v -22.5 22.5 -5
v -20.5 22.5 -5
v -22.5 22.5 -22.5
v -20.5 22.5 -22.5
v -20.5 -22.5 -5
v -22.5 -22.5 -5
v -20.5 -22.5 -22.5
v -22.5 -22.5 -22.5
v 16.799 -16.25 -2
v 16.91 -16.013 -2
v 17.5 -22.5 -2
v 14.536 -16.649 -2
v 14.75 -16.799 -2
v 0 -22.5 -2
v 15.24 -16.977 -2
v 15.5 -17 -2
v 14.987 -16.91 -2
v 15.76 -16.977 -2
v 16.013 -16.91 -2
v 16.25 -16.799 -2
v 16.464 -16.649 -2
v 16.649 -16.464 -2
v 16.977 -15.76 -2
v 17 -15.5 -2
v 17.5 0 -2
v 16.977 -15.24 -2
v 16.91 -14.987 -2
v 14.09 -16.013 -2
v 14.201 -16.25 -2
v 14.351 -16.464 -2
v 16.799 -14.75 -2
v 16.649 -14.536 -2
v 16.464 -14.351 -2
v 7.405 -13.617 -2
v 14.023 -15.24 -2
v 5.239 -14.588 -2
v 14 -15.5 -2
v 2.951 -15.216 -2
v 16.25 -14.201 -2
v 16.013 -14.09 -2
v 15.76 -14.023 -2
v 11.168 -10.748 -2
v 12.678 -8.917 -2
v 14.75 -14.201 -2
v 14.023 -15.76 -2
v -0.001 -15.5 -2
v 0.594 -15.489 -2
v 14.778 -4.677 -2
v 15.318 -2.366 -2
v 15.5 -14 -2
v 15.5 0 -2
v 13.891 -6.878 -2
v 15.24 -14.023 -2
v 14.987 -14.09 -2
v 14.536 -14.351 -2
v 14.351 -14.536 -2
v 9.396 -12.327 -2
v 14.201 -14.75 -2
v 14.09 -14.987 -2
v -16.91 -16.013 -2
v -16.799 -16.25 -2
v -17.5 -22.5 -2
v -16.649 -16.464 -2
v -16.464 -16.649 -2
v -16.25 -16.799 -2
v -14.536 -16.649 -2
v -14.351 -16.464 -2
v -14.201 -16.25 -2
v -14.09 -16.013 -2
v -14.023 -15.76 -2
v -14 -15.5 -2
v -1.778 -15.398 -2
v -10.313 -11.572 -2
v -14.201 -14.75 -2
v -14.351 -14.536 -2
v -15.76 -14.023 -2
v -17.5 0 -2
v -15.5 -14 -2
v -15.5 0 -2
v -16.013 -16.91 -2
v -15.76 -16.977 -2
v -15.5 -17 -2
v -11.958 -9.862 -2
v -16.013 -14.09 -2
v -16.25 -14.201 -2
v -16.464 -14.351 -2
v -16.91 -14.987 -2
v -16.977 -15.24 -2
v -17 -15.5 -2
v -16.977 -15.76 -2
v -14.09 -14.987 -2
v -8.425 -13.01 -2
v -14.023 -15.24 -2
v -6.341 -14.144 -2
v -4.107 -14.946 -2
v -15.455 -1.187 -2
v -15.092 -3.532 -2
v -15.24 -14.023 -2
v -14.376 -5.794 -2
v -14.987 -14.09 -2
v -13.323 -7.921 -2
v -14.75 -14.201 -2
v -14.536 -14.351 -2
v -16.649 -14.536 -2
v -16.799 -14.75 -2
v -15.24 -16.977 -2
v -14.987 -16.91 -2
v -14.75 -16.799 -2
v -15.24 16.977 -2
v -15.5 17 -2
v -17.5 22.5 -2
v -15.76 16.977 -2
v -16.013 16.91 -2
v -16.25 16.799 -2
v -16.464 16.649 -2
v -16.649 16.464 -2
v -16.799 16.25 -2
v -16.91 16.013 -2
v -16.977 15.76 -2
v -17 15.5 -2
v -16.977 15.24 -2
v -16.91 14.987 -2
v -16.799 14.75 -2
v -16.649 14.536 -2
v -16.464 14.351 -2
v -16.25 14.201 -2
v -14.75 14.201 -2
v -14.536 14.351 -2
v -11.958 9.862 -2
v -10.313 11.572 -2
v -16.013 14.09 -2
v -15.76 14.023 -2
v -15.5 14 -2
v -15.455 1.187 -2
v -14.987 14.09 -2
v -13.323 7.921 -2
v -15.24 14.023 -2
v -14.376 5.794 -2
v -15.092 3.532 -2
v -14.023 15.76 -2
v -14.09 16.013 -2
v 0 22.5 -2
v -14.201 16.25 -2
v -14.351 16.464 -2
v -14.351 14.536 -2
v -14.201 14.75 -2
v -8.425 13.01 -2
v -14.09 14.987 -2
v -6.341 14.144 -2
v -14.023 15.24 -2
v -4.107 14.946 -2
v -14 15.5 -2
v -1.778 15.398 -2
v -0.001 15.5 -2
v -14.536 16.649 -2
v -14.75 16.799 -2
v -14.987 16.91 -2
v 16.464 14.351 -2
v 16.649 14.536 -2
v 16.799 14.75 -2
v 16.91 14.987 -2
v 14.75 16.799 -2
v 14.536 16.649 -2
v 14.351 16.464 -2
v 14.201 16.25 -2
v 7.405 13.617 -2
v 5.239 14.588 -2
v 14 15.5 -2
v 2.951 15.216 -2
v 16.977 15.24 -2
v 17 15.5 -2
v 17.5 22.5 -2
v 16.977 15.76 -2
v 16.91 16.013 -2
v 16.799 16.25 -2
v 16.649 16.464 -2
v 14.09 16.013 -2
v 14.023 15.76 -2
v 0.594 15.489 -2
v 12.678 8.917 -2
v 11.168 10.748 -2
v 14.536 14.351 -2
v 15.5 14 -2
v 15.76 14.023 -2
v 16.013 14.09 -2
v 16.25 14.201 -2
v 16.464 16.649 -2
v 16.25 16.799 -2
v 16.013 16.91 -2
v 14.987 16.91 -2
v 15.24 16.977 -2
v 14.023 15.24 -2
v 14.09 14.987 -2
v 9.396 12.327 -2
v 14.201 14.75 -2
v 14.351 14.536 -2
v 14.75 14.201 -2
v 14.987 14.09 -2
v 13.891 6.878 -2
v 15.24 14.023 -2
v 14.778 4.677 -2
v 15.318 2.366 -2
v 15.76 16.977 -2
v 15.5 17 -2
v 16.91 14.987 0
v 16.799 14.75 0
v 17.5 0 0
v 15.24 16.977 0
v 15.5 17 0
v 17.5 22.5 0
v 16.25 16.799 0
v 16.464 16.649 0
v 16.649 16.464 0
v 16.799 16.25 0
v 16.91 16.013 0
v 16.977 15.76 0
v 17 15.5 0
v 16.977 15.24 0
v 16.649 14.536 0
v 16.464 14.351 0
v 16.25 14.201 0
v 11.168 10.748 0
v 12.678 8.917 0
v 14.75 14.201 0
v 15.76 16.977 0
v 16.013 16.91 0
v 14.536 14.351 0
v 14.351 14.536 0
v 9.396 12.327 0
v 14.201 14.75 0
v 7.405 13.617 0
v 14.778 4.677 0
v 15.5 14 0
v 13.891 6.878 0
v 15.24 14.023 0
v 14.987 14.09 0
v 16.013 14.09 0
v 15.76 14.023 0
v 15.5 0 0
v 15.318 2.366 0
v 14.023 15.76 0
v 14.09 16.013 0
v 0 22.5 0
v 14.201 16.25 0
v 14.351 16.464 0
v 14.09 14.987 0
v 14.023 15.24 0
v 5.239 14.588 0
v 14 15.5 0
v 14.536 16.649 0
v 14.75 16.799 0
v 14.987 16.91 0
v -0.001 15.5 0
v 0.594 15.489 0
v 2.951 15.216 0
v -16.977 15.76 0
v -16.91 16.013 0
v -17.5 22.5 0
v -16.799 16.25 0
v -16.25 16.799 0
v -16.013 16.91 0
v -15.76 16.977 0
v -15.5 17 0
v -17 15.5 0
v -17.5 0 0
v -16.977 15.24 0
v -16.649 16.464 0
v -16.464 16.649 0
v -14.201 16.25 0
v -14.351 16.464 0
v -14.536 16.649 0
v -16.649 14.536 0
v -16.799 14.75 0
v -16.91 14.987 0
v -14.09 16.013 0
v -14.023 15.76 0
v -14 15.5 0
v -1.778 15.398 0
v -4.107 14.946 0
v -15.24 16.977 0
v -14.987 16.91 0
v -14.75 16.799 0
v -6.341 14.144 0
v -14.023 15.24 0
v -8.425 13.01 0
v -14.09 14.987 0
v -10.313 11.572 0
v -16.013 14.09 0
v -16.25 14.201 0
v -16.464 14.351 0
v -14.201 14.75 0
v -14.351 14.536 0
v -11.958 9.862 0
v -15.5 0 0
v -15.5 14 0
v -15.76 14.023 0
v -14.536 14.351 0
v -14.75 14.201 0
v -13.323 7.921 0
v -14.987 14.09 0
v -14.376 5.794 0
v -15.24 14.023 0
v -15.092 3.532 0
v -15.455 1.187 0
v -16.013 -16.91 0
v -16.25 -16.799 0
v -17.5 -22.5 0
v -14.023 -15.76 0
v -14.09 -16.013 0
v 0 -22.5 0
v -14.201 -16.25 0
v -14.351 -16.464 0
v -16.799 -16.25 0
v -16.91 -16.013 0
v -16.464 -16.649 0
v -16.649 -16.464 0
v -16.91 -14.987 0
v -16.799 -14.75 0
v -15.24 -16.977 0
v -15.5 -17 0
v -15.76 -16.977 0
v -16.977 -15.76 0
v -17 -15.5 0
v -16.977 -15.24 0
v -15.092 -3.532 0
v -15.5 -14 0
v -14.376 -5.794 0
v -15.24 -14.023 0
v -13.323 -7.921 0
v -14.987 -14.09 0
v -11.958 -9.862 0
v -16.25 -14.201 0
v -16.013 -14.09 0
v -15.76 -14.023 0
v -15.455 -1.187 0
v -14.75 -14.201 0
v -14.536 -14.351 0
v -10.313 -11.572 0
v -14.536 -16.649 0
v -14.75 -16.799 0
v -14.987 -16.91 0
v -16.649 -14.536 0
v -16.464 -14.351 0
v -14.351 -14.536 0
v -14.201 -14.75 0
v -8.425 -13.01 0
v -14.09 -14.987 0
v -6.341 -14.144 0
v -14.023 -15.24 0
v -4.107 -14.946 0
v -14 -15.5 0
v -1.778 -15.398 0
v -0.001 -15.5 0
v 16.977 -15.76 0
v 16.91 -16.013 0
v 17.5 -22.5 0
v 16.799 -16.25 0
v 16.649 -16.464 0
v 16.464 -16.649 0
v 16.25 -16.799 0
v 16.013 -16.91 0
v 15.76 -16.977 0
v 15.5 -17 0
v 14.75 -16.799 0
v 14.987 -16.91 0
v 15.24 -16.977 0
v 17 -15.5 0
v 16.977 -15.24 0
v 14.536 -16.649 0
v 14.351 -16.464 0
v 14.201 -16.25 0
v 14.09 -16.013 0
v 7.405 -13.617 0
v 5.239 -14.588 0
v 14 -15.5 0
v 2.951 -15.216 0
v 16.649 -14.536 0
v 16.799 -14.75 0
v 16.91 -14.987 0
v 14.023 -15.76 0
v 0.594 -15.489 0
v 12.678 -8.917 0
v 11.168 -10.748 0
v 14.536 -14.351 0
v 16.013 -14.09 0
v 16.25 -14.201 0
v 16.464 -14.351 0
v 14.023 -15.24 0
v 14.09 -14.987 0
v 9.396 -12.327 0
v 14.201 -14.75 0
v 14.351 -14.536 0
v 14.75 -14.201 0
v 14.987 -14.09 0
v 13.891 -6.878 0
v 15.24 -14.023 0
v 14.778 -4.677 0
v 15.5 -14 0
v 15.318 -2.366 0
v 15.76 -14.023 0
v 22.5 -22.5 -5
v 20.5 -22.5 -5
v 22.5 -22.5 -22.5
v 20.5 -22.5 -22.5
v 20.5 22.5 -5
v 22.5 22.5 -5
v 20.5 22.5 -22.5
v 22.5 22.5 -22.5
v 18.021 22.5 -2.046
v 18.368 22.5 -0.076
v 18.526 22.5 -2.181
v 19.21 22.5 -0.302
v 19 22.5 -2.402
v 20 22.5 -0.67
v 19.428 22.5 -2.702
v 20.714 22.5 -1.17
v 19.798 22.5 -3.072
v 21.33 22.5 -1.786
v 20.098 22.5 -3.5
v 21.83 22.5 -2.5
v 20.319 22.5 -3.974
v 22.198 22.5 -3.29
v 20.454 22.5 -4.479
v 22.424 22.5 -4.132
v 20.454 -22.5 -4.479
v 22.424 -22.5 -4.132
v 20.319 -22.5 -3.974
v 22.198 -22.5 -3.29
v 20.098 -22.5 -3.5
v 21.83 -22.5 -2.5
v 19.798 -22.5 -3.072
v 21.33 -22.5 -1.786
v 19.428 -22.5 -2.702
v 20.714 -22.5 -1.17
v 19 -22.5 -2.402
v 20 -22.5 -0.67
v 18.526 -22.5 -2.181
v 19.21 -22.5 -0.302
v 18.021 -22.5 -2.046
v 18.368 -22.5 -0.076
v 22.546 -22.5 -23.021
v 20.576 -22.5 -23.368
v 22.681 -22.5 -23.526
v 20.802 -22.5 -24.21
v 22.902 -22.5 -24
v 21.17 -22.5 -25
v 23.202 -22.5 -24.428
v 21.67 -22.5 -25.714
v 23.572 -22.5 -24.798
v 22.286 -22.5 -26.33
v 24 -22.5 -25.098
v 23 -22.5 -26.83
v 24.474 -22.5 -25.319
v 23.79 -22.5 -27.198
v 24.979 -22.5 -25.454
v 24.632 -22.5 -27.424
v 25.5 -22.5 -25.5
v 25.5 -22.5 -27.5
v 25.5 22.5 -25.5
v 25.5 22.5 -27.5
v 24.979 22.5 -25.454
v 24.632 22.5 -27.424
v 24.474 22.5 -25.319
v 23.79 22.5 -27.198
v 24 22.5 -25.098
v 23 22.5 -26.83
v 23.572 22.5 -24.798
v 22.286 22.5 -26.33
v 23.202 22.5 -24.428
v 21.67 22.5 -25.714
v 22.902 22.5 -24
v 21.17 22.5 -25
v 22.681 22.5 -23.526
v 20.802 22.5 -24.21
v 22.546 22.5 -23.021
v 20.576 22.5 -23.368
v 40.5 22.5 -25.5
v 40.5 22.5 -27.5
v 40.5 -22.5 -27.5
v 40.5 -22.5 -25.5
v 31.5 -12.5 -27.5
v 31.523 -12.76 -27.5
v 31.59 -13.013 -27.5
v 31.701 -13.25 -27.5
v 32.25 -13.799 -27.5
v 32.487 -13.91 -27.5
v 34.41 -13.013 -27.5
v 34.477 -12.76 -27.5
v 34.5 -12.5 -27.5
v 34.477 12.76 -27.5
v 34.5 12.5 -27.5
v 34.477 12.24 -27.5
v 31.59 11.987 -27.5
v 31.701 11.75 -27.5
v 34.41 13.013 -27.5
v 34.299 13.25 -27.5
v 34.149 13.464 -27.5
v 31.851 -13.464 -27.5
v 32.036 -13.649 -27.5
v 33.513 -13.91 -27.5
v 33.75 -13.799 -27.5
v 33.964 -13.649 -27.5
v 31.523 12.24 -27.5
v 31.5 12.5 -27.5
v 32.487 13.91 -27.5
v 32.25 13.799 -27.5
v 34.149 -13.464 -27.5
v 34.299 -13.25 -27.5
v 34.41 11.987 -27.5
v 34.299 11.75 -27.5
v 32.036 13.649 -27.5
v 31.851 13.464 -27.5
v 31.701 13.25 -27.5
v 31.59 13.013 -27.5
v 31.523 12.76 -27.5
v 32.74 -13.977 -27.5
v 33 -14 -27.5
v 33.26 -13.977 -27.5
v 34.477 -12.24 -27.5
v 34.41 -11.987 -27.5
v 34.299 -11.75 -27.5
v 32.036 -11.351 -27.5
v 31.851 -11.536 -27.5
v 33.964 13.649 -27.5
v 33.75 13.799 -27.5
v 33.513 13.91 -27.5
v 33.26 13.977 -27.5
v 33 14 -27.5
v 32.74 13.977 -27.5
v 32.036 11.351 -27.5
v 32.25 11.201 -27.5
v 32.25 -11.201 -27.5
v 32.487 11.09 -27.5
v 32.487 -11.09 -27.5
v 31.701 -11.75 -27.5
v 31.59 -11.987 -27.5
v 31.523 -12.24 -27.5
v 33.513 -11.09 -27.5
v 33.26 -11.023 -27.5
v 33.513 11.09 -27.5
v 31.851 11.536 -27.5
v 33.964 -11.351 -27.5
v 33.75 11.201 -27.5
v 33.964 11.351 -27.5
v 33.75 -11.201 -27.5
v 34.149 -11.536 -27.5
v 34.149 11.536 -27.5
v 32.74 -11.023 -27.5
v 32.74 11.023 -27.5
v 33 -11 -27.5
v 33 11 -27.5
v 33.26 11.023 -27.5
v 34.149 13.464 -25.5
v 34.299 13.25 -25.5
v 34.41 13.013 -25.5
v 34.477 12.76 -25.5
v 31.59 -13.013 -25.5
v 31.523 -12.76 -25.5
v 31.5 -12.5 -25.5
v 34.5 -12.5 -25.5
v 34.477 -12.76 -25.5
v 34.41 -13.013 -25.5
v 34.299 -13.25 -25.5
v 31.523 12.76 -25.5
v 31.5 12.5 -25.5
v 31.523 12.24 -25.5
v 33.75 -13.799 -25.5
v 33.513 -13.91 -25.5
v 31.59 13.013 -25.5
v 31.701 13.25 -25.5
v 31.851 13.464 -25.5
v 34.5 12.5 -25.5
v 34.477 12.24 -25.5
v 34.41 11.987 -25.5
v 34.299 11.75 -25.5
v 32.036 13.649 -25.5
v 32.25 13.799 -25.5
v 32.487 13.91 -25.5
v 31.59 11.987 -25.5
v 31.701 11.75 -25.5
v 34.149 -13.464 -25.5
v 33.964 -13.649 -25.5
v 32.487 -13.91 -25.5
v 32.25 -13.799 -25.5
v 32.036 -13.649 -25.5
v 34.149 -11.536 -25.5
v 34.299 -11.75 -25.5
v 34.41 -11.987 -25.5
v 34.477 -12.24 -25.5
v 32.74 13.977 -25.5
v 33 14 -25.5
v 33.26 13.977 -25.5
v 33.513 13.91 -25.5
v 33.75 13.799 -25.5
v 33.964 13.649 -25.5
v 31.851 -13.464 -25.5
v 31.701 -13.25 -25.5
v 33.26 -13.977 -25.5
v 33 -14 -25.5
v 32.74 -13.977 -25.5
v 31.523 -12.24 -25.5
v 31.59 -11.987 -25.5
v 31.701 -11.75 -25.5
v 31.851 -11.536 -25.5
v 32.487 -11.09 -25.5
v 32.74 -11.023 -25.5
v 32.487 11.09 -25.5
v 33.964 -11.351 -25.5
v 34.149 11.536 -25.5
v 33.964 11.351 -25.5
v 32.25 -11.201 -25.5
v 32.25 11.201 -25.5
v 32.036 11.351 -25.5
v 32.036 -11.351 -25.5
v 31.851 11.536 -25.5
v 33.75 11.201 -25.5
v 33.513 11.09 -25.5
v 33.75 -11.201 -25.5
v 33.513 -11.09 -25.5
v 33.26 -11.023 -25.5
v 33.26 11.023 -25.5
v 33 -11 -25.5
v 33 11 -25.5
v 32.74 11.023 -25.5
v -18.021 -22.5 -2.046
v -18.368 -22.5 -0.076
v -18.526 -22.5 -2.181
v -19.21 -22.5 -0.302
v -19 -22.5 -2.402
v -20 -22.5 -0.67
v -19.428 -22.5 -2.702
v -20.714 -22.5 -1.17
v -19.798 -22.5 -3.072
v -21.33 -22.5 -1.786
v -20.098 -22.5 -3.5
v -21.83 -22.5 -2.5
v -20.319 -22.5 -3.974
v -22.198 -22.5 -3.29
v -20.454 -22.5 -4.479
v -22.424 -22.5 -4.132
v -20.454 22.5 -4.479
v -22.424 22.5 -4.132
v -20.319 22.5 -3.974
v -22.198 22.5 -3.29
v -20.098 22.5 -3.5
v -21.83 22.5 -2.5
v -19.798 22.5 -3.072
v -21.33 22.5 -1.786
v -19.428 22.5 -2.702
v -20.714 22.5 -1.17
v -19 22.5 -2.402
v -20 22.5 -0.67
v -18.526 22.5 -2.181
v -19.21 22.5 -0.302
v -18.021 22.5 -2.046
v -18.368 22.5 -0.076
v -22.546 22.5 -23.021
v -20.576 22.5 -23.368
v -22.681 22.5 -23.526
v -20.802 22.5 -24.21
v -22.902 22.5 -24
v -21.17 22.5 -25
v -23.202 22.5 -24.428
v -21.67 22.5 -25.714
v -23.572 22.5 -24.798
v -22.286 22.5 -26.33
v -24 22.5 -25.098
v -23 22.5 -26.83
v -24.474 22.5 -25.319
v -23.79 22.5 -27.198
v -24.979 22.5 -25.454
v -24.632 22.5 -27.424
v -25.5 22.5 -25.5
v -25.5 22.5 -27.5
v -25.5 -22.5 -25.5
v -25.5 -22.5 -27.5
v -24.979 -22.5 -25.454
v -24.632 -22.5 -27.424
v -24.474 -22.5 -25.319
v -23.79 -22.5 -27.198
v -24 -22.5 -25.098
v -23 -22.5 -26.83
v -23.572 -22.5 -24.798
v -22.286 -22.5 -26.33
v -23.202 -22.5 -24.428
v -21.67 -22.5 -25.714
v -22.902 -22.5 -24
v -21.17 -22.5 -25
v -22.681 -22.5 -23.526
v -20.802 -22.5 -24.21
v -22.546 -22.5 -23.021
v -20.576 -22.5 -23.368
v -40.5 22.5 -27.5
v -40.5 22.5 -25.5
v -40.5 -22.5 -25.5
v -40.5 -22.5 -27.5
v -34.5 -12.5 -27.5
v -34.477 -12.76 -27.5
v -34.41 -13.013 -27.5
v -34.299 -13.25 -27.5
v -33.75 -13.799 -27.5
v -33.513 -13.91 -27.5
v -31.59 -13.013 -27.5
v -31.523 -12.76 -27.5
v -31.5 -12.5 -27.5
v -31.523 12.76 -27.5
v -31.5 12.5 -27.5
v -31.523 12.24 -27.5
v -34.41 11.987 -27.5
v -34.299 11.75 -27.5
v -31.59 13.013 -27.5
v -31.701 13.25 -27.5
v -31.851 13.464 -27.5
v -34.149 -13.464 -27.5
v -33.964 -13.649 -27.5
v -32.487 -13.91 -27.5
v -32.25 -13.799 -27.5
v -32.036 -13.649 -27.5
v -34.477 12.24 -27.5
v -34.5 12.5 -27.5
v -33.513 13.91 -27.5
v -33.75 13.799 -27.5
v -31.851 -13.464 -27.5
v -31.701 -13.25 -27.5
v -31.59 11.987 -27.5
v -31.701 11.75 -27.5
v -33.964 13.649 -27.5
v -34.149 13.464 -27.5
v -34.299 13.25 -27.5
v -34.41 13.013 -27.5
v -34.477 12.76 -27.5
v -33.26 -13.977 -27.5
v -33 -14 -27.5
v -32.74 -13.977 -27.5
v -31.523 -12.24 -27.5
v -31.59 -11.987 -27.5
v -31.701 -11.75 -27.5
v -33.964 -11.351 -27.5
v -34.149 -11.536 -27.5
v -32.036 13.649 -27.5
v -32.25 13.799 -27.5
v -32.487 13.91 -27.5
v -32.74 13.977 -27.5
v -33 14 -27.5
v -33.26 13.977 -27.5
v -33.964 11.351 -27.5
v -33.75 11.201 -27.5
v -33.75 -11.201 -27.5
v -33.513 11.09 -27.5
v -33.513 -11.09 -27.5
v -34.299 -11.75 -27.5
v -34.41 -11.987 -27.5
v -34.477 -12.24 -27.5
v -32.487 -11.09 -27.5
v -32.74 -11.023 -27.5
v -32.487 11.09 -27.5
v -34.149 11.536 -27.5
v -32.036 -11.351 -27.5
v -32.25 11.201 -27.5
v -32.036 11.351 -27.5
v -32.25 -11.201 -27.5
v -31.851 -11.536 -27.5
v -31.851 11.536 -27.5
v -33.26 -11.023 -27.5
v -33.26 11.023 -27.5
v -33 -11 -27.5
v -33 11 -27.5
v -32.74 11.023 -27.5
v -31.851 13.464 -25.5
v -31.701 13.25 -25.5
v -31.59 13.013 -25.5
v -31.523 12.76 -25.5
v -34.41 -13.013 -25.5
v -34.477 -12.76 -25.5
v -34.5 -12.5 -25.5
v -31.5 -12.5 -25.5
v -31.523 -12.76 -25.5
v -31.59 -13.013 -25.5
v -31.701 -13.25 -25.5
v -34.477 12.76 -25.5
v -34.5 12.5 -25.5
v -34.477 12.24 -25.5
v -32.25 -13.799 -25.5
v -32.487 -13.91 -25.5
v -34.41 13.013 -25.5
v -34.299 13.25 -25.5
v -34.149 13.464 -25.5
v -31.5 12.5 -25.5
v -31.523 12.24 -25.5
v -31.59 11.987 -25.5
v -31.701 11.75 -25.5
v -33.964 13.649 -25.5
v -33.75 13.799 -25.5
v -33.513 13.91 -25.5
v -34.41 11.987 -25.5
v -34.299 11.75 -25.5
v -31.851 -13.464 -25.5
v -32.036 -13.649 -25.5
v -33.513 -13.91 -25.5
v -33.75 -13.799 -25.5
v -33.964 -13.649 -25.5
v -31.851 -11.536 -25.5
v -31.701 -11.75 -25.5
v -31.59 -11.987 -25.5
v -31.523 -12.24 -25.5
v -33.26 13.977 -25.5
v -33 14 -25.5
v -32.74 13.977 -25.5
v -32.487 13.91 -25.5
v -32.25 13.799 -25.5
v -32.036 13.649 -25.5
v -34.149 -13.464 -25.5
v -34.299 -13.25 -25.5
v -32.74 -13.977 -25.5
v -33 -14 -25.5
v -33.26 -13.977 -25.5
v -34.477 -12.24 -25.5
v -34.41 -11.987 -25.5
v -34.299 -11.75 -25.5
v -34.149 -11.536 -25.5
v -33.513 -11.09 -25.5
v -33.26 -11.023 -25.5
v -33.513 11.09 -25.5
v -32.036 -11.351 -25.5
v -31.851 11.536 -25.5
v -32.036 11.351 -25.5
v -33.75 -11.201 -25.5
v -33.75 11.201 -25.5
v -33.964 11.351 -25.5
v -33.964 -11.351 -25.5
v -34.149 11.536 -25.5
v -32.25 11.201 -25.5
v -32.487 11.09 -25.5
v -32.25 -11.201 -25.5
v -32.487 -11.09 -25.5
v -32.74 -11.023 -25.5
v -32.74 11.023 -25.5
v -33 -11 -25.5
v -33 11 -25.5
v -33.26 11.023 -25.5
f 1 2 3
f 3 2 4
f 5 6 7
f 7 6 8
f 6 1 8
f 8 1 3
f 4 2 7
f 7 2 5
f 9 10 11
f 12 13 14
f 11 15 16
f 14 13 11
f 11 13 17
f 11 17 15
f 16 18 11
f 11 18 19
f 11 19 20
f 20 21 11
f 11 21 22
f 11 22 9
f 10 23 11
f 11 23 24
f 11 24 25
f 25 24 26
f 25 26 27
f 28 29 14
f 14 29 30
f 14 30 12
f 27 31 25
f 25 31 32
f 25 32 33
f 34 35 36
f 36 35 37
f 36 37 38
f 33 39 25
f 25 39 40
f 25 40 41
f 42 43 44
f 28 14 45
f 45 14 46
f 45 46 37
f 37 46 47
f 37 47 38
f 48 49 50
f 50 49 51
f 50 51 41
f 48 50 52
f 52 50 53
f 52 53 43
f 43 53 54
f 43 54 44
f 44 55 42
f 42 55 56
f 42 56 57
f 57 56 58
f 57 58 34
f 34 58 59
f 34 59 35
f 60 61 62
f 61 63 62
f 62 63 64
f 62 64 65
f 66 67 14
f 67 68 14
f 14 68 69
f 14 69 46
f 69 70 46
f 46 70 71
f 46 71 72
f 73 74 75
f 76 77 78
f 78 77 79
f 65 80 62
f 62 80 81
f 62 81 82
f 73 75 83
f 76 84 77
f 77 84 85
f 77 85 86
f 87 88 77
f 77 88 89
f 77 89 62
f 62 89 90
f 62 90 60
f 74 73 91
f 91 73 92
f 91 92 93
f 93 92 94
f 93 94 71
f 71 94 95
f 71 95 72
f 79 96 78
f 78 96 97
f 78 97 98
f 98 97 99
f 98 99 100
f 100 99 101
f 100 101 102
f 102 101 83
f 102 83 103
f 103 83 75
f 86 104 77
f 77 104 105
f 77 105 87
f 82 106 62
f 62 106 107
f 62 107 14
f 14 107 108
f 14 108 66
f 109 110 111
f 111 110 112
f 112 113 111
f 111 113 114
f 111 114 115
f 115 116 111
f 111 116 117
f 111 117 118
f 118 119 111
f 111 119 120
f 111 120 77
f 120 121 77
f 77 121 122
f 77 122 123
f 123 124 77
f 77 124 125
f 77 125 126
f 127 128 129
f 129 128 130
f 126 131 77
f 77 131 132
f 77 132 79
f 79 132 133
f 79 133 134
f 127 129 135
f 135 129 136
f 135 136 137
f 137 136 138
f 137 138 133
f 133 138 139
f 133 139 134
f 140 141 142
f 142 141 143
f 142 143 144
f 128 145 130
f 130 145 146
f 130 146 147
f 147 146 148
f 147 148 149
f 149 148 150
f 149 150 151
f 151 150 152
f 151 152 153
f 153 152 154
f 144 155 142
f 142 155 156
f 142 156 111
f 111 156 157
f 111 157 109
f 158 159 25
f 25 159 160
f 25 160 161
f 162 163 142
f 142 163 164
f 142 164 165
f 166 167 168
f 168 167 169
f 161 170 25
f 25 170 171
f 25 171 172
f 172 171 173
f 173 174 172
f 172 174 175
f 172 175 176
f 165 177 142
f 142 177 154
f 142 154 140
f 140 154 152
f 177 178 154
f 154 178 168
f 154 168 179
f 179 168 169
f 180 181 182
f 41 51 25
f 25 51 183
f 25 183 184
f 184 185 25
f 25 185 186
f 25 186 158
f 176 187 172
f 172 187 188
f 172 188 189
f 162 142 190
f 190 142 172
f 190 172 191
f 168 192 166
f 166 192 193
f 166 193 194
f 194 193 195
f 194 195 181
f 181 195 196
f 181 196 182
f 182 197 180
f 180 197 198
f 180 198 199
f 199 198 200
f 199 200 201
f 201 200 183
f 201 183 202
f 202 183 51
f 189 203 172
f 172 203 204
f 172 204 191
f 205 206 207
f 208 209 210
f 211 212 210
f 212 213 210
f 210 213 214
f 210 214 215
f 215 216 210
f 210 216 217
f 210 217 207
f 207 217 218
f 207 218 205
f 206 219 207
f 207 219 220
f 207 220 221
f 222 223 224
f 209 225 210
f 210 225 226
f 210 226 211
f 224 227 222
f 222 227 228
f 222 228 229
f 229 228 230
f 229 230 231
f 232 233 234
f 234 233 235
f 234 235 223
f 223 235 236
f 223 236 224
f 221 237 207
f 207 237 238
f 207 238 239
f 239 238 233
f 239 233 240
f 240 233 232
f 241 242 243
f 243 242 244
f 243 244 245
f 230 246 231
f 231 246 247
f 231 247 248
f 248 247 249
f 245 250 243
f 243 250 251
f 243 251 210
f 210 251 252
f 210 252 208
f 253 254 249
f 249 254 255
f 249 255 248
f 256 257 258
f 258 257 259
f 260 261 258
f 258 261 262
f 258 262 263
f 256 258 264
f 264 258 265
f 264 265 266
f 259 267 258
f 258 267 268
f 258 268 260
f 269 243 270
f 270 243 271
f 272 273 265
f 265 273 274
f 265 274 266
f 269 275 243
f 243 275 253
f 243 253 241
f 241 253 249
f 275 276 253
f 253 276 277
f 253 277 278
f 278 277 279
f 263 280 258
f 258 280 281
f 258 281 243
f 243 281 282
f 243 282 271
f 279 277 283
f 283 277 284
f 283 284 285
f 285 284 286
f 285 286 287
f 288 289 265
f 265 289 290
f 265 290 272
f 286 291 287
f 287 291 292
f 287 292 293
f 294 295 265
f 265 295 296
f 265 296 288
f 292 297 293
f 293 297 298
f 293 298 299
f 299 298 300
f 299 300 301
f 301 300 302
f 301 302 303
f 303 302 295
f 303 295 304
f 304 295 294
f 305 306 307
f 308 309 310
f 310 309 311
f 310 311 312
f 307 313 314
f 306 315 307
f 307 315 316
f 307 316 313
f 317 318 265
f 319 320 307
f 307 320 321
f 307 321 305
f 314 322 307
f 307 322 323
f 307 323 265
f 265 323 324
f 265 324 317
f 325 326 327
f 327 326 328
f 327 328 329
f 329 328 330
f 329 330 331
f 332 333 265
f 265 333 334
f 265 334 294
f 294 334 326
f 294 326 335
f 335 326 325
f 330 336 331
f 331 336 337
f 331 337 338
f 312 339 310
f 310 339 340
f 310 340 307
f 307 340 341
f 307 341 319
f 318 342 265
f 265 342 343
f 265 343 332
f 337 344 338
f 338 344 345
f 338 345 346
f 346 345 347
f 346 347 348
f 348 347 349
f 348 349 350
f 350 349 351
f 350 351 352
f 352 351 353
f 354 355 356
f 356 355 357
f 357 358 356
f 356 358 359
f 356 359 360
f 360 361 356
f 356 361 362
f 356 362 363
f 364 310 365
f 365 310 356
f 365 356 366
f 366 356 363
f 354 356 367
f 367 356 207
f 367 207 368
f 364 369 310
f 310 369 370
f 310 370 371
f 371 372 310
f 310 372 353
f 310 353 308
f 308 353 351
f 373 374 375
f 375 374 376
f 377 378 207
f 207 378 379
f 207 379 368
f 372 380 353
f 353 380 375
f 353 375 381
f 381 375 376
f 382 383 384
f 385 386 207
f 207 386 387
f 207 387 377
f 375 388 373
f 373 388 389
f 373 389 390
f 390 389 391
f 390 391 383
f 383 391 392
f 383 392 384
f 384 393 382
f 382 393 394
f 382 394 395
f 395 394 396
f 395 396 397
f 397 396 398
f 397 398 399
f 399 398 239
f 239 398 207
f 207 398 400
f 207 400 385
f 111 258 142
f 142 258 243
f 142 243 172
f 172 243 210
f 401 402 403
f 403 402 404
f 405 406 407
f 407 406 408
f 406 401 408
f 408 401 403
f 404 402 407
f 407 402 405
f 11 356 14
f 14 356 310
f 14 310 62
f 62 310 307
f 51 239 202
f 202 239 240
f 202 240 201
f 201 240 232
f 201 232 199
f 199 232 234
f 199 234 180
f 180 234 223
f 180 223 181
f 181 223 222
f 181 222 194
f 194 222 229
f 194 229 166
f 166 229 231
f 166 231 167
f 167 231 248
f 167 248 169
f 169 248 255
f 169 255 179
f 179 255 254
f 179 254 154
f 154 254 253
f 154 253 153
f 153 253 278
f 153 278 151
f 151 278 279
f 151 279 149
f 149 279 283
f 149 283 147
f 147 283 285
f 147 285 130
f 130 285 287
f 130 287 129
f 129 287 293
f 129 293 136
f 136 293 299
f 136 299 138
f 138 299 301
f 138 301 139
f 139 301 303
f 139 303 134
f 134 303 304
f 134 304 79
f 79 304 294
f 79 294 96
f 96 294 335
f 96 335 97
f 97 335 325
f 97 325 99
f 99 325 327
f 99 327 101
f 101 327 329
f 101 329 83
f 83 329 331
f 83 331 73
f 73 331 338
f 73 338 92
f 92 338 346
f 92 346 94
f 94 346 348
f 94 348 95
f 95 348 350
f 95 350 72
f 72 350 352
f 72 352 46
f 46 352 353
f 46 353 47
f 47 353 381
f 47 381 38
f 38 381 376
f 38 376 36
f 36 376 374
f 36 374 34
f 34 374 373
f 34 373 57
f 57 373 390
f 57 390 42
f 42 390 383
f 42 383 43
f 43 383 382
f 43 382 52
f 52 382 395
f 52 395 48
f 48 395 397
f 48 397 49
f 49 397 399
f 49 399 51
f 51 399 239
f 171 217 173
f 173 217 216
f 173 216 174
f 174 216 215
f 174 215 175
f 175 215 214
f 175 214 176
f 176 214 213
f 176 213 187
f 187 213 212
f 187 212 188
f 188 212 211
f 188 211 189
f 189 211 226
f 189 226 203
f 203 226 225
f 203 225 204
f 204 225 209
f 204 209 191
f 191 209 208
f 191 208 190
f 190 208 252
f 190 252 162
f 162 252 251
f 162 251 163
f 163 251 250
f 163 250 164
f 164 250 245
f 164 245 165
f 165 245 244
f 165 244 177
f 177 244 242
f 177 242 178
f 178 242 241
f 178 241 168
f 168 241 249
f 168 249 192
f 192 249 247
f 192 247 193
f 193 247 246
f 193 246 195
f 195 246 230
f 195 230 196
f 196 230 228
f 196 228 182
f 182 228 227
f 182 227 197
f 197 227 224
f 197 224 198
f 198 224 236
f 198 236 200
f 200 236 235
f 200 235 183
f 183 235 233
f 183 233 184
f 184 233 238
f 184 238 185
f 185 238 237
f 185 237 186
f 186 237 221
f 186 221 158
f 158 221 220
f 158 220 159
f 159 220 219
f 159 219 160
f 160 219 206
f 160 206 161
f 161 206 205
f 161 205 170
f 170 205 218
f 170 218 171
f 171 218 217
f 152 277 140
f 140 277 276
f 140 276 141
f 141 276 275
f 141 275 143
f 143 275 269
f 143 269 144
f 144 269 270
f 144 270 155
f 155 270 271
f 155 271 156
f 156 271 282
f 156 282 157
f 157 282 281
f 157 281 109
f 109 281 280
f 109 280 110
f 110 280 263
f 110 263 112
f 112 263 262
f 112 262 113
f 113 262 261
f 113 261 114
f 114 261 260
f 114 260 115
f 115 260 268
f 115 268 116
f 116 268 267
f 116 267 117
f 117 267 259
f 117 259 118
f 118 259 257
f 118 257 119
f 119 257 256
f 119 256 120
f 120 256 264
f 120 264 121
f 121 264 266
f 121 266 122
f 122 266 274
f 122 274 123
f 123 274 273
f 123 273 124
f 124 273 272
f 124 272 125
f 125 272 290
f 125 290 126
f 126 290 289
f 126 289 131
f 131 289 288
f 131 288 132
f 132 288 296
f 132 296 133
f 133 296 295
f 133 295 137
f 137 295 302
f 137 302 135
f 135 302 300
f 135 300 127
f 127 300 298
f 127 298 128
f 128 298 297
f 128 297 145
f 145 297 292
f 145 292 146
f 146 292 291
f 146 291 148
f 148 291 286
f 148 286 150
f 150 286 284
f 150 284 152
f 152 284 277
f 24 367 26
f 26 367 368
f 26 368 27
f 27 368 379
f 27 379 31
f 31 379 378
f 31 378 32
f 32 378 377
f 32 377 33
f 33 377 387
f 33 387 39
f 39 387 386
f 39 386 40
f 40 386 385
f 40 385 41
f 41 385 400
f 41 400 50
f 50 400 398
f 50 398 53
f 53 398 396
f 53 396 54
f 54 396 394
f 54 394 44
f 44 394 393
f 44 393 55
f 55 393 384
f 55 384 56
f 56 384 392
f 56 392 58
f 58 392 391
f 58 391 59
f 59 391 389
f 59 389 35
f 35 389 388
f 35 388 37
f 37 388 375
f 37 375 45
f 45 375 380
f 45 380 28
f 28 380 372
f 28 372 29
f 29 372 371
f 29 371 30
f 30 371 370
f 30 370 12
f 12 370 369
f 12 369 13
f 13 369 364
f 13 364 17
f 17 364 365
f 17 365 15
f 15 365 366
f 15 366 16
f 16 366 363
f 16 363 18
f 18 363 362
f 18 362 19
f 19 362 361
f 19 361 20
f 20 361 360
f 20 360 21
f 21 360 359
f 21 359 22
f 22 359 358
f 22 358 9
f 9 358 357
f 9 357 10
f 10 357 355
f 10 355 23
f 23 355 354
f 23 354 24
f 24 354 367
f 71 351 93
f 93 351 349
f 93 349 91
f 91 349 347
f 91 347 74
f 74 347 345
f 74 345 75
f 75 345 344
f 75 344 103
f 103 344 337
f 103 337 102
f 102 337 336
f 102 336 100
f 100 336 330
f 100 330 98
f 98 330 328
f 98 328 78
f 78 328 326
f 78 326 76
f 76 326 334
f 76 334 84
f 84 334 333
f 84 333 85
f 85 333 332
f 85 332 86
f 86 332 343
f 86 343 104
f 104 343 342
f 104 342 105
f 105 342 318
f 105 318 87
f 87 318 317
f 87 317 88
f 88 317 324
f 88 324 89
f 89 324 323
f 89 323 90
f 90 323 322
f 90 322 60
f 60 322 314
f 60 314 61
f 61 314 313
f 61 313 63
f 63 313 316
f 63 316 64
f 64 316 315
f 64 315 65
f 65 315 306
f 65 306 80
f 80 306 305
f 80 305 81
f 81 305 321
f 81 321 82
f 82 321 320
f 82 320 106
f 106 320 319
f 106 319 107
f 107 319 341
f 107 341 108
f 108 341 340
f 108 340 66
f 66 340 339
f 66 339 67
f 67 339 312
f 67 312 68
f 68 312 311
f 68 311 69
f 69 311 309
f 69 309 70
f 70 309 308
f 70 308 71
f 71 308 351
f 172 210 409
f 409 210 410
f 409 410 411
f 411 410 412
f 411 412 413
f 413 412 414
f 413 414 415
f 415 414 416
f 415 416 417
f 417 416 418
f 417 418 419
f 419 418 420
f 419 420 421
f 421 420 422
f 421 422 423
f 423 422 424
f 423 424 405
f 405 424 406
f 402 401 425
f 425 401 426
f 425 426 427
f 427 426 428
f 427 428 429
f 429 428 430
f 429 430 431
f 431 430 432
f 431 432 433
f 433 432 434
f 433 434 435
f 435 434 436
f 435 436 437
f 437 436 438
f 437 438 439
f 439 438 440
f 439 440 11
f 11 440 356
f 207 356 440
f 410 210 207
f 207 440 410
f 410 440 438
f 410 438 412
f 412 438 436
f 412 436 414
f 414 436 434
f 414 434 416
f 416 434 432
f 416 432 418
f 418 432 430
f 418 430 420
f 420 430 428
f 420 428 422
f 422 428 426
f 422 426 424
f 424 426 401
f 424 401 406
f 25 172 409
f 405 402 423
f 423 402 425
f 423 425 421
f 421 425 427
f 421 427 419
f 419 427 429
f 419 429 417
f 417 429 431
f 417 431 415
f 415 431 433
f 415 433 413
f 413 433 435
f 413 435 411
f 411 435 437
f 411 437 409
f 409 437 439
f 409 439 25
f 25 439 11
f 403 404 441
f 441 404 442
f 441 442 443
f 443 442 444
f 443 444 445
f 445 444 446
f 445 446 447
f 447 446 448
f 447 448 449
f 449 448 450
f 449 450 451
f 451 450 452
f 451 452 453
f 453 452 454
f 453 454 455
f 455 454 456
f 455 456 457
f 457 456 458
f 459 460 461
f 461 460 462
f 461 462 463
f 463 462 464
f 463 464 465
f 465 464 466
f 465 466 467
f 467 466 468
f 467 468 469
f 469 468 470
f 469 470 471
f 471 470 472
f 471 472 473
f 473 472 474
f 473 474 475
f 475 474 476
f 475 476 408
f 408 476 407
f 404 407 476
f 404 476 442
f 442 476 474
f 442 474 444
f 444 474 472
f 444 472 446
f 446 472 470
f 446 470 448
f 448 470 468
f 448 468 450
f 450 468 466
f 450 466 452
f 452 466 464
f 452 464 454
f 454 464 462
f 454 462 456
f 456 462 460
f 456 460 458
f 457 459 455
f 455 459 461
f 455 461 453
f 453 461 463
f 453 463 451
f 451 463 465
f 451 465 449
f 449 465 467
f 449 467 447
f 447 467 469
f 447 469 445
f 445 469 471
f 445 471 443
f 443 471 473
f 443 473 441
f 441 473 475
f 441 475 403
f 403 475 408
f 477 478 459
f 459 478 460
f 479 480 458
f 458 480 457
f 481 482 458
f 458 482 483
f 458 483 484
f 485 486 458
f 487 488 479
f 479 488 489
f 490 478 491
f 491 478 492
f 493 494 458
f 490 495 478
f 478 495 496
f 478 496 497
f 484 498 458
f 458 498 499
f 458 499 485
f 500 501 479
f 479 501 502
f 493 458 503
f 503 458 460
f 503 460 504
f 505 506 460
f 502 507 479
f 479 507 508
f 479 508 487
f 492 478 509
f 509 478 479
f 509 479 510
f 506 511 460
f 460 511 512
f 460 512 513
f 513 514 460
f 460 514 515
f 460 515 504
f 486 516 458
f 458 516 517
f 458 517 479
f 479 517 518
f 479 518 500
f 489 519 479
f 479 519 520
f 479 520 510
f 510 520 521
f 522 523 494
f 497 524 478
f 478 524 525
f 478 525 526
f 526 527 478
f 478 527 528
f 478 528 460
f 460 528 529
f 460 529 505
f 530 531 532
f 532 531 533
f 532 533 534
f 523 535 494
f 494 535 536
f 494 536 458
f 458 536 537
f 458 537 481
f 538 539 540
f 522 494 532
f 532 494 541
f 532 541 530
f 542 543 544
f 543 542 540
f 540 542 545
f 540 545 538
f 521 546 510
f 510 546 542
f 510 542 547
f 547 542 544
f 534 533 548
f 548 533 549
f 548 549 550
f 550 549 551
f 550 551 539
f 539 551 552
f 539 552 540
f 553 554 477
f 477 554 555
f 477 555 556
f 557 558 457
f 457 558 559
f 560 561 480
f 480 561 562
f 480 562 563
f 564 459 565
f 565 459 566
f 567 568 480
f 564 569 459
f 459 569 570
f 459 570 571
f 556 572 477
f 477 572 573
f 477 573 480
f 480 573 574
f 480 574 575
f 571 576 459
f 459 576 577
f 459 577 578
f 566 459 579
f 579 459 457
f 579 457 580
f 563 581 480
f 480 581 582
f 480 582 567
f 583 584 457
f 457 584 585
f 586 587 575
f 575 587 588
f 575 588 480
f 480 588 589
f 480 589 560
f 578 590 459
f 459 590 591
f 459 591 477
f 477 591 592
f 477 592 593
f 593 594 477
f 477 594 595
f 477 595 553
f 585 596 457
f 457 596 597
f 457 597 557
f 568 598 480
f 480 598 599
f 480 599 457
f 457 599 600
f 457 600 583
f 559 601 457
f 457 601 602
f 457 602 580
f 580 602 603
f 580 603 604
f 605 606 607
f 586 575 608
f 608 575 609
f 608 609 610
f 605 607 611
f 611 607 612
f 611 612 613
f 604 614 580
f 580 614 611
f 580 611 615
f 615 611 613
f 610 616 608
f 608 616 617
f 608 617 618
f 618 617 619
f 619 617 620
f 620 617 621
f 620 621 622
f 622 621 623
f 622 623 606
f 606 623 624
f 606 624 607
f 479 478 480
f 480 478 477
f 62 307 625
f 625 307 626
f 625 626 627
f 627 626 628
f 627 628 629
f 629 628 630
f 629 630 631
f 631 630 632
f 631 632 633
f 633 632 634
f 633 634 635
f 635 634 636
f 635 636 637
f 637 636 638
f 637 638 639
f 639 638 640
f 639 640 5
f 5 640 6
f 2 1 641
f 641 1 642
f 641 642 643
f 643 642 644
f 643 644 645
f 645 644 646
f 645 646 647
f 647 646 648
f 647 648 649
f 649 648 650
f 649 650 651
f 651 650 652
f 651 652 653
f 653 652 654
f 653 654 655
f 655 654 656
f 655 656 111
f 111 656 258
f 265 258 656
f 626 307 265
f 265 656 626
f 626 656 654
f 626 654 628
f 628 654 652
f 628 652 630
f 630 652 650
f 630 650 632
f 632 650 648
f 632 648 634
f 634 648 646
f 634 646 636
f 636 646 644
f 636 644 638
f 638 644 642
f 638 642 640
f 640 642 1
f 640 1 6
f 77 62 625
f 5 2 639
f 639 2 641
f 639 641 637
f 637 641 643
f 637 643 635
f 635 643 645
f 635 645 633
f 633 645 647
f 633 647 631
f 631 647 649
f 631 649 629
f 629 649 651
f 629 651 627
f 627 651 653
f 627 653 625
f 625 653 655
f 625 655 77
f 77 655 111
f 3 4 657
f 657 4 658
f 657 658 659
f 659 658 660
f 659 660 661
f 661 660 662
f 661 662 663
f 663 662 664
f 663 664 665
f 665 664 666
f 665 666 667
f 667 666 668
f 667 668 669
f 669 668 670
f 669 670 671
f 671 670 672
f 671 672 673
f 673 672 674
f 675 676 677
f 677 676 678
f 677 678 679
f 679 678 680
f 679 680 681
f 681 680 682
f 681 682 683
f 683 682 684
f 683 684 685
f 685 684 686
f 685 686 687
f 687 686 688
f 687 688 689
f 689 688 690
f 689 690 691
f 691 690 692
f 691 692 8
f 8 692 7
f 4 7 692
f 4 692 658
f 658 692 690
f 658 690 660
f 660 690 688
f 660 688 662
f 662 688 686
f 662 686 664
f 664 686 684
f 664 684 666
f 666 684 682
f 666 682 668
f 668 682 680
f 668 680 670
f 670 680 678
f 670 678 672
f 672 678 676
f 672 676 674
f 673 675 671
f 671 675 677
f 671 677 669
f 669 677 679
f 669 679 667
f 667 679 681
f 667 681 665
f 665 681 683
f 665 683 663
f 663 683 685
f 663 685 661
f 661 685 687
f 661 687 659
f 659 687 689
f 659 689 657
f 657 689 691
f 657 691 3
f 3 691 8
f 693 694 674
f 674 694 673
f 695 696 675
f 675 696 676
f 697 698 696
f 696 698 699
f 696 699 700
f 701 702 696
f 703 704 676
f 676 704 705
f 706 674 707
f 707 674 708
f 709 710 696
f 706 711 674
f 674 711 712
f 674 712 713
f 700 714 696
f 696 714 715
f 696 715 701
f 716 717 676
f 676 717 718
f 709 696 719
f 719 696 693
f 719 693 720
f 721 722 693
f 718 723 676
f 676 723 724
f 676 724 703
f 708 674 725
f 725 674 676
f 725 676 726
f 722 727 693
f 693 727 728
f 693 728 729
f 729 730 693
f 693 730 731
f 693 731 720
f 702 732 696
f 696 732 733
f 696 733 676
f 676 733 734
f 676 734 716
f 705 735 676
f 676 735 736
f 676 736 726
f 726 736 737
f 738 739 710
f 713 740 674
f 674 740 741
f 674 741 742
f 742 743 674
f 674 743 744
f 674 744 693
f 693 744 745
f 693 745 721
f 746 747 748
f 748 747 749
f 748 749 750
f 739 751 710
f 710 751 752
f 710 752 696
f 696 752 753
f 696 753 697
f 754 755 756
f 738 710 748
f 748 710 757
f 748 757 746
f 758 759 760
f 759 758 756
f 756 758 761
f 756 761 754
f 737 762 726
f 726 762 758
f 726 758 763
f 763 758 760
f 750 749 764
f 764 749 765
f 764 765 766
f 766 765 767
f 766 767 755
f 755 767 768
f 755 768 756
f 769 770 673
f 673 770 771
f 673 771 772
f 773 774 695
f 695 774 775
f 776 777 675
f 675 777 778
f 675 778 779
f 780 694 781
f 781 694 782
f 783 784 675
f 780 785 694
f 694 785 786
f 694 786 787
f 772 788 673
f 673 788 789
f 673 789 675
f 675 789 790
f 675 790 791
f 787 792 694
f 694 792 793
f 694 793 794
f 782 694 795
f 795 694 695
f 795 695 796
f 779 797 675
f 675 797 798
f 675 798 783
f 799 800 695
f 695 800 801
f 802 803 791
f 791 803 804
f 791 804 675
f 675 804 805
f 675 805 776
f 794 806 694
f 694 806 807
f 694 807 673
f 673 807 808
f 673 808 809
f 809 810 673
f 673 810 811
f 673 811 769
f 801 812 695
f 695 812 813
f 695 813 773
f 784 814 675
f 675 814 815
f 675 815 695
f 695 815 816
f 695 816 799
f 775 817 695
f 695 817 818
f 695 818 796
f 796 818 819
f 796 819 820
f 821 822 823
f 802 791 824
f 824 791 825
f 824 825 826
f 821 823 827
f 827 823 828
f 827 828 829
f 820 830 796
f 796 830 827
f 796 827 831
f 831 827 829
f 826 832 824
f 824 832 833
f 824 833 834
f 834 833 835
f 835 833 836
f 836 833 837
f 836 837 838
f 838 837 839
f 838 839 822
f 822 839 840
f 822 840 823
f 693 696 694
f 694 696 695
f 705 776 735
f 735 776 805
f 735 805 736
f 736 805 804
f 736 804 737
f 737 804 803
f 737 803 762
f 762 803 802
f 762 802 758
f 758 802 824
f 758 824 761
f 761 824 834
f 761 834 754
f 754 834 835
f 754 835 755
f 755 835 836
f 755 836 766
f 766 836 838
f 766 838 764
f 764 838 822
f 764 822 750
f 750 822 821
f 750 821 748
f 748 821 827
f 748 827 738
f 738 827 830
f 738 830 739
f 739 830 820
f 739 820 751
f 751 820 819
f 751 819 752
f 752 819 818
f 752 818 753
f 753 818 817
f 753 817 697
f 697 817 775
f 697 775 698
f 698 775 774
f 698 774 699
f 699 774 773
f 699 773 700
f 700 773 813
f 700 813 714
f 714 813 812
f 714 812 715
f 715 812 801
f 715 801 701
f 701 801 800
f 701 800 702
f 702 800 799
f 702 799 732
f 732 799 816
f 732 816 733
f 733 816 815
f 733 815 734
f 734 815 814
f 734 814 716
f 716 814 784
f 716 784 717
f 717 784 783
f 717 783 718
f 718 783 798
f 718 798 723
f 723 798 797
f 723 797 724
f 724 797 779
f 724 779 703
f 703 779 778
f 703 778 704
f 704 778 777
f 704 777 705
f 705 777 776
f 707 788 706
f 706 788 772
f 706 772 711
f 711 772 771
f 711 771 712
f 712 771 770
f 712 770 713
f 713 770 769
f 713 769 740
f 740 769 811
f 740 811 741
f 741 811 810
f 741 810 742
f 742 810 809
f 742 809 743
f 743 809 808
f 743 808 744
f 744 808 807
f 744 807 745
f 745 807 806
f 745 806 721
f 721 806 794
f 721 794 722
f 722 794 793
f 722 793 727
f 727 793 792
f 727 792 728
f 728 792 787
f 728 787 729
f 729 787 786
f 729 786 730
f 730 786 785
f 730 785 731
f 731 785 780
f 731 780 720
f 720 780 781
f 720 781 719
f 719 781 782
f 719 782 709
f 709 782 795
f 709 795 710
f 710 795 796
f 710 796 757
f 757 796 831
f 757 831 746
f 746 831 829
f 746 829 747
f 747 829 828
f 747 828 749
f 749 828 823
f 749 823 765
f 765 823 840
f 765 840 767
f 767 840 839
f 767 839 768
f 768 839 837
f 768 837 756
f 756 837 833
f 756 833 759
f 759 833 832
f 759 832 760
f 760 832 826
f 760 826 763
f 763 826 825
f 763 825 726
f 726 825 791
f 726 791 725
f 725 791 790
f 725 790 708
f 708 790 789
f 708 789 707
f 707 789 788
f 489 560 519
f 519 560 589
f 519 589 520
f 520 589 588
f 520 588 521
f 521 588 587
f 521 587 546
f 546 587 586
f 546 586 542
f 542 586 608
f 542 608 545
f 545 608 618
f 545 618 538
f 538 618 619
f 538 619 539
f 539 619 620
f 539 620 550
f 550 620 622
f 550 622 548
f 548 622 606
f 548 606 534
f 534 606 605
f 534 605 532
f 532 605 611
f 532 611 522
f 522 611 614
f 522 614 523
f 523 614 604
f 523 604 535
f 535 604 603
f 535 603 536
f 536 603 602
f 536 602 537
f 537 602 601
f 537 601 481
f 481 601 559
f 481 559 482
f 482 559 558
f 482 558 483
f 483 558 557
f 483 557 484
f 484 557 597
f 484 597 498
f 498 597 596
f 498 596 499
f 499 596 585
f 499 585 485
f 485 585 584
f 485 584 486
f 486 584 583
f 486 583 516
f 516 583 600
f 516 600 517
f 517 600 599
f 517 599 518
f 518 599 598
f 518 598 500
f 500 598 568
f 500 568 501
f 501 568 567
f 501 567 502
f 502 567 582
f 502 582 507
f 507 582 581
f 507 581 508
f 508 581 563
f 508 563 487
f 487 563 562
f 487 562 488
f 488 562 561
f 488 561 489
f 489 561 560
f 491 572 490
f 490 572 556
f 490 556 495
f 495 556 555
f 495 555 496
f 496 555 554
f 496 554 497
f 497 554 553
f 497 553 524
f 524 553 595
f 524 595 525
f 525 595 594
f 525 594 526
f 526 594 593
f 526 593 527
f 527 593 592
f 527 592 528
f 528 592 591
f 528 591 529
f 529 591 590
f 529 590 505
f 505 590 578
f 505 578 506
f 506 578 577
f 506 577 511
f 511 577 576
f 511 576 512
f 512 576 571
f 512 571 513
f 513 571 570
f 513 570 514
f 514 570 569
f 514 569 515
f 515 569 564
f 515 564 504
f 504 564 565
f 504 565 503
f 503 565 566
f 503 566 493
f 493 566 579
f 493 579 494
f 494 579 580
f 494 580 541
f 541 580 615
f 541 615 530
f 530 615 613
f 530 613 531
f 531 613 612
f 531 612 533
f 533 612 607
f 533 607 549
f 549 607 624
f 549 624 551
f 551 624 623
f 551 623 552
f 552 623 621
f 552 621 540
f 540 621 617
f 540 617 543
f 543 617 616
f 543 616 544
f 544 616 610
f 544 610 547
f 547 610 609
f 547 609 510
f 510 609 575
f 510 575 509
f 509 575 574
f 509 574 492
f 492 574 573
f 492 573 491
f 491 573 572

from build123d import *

# Parameters (mm, degrees)
SKETCH1_W                    = 45
SKETCH1_H                    = 45
SKETCH1_R                    = 15.5
SKETCH1_R_2                  = 1.5
BASE_FLANGE1_DEPTH           = 2
EDGE_FLANGE1_STRIP_W         = 14
EDGE_FLANGE1_STRIP_H         = 2
EDGE_FLANGE1_STRIP_CUT_DEPTH = 45
EDGE_FLANGE1_DEPTH           = 45
EDGE_FLANGE2_STRIP_W         = 14
EDGE_FLANGE2_STRIP_H         = 2
EDGE_FLANGE2_STRIP_CUT_DEPTH = 45
EDGE_FLANGE2_DEPTH           = 45
EDGE_FLANGE3_STRIP_W         = 14
EDGE_FLANGE3_STRIP_H         = 2
EDGE_FLANGE3_STRIP_CUT_DEPTH = 45
EDGE_FLANGE3_DEPTH           = 45
EDGE_FLANGE4_STRIP_W         = 14
EDGE_FLANGE4_STRIP_H         = 2
EDGE_FLANGE4_STRIP_CUT_DEPTH = 45
EDGE_FLANGE4_DEPTH           = 45
SKETCH18_R                   = 1.5
CUT_EXTRUDE1_DEPTH           = 10
SKETCH19_R                   = 1.5
CUT_EXTRUDE2_DEPTH           = 10


# Sheet-metal steps are written as plain solids
with BuildPart() as part:
    # Sketch1 → Base-Flange1 (new body)
    with BuildSketch(Plane.XY):
        Rectangle(SKETCH1_W, SKETCH1_H)
        Circle(SKETCH1_R, mode=Mode.SUBTRACT)
        with Locations((-15.5, 15.5)):
            Circle(SKETCH1_R_2, mode=Mode.SUBTRACT)
        with Locations((15.5, 15.5)):
            Circle(SKETCH1_R_2, mode=Mode.SUBTRACT)
        with Locations((15.5, -15.5)):
            Circle(SKETCH1_R_2, mode=Mode.SUBTRACT)
        with Locations((-15.5, -15.5)):
            Circle(SKETCH1_R_2, mode=Mode.SUBTRACT)
    extrude(amount=-BASE_FLANGE1_DEPTH)

    # Edge-Flange1 strip (across the edge) → Edge-Flange1 strip cut (cut)
    with BuildSketch(Plane(origin=(22.5, 22.5, -2), x_dir=(-1, 0, 0), z_dir=(0, -1, 0))):
        with Locations((-2, -1)):
            Rectangle(EDGE_FLANGE1_STRIP_W, EDGE_FLANGE1_STRIP_H)
    extrude(amount=EDGE_FLANGE1_STRIP_CUT_DEPTH, mode=Mode.SUBTRACT)

    # Edge-Flange1 section (across the edge) → Edge-Flange1 (add)
    with BuildSketch(Plane(origin=(22.5, 22.5, -2), x_dir=(-1, 0, 0), z_dir=(0, -1, 0))):
        with BuildLine():
            Line((0, 3), (0, 25.5))
            Line((0, 25.5), (2, 25.5))
            Line((2, 25.5), (2, 3))
            ThreePointArc((2, 3), (2.878679656, 0.878679656), (5, 0))
            Line((5, 0), (5, -2))
            ThreePointArc((5, -2), (1.464466094, -0.535533906), (0, 3))
        make_face()
    extrude(amount=EDGE_FLANGE1_DEPTH)

    # Edge-Flange2 strip (across the edge) → Edge-Flange2 strip cut (cut)
    with BuildSketch(Plane(origin=(22.5, -22.5, -27.5), x_dir=(0, 0, 1), z_dir=(0, 1, 0))):
        with Locations((-2, -1)):
            Rectangle(EDGE_FLANGE2_STRIP_W, EDGE_FLANGE2_STRIP_H)
    extrude(amount=EDGE_FLANGE2_STRIP_CUT_DEPTH, mode=Mode.SUBTRACT)

    # Edge-Flange2 section (across the edge) → Edge-Flange2 (add)
    with BuildSketch(Plane(origin=(22.5, -22.5, -27.5), x_dir=(0, 0, 1), z_dir=(0, 1, 0))):
        with BuildLine():
            Line((0, 3), (0, 18))
            Line((0, 18), (2, 18))
            Line((2, 18), (2, 3))
            ThreePointArc((2, 3), (2.878679656, 0.878679656), (5, 0))
            Line((5, 0), (5, -2))
            ThreePointArc((5, -2), (1.464466094, -0.535533906), (0, 3))
        make_face()
    extrude(amount=EDGE_FLANGE2_DEPTH)

    # Edge-Flange3 strip (across the edge) → Edge-Flange3 strip cut (cut)
    with BuildSketch(Plane(origin=(-22.5, -22.5, -2), x_dir=(1, 0, 0), z_dir=(0, 1, 0))):
        with Locations((-2, -1)):
            Rectangle(EDGE_FLANGE3_STRIP_W, EDGE_FLANGE3_STRIP_H)
    extrude(amount=EDGE_FLANGE3_STRIP_CUT_DEPTH, mode=Mode.SUBTRACT)

    # Edge-Flange3 section (across the edge) → Edge-Flange3 (add)
    with BuildSketch(Plane(origin=(-22.5, -22.5, -2), x_dir=(1, 0, 0), z_dir=(0, 1, 0))):
        with BuildLine():
            Line((0, 3), (0, 25.5))
            Line((0, 25.5), (2, 25.5))
            Line((2, 25.5), (2, 3))
            ThreePointArc((2, 3), (2.878679656, 0.878679656), (5, 0))
            Line((5, 0), (5, -2))
            ThreePointArc((5, -2), (1.464466094, -0.535533906), (0, 3))
        make_face()
    extrude(amount=EDGE_FLANGE3_DEPTH)

    # Edge-Flange4 strip (across the edge) → Edge-Flange4 strip cut (cut)
    with BuildSketch(Plane(origin=(-22.5, 22.5, -27.5), x_dir=(0, 0, 1), z_dir=(0, -1, 0))):
        with Locations((-2, -1)):
            Rectangle(EDGE_FLANGE4_STRIP_W, EDGE_FLANGE4_STRIP_H)
    extrude(amount=EDGE_FLANGE4_STRIP_CUT_DEPTH, mode=Mode.SUBTRACT)

    # Edge-Flange4 section (across the edge) → Edge-Flange4 (add)
    with BuildSketch(Plane(origin=(-22.5, 22.5, -27.5), x_dir=(0, 0, 1), z_dir=(0, -1, 0))):
        with BuildLine():
            Line((0, 3), (0, 18))
            Line((0, 18), (2, 18))
            Line((2, 18), (2, 3))
            ThreePointArc((2, 3), (2.878679656, 0.878679656), (5, 0))
            Line((5, 0), (5, -2))
            ThreePointArc((5, -2), (1.464466094, -0.535533906), (0, 3))
        make_face()
    extrude(amount=EDGE_FLANGE4_DEPTH)

    # Sketch18 → Cut-Extrude1 (cut)
    with BuildSketch(Plane.XY.offset(-25.5)):
        with Locations((-33, 12.5)):
            Circle(SKETCH18_R)
        with Locations((-33, -12.5)):
            Circle(SKETCH18_R)
    extrude(amount=-CUT_EXTRUDE1_DEPTH, mode=Mode.SUBTRACT)

    # Sketch19 → Cut-Extrude2 (cut)
    with BuildSketch(Plane.XY.offset(-25.5)):
        with Locations((33, 12.5)):
            Circle(SKETCH19_R)
        with Locations((33, -12.5)):
            Circle(SKETCH19_R)
    extrude(amount=-CUT_EXTRUDE2_DEPTH, mode=Mode.SUBTRACT)


solid = part.part
